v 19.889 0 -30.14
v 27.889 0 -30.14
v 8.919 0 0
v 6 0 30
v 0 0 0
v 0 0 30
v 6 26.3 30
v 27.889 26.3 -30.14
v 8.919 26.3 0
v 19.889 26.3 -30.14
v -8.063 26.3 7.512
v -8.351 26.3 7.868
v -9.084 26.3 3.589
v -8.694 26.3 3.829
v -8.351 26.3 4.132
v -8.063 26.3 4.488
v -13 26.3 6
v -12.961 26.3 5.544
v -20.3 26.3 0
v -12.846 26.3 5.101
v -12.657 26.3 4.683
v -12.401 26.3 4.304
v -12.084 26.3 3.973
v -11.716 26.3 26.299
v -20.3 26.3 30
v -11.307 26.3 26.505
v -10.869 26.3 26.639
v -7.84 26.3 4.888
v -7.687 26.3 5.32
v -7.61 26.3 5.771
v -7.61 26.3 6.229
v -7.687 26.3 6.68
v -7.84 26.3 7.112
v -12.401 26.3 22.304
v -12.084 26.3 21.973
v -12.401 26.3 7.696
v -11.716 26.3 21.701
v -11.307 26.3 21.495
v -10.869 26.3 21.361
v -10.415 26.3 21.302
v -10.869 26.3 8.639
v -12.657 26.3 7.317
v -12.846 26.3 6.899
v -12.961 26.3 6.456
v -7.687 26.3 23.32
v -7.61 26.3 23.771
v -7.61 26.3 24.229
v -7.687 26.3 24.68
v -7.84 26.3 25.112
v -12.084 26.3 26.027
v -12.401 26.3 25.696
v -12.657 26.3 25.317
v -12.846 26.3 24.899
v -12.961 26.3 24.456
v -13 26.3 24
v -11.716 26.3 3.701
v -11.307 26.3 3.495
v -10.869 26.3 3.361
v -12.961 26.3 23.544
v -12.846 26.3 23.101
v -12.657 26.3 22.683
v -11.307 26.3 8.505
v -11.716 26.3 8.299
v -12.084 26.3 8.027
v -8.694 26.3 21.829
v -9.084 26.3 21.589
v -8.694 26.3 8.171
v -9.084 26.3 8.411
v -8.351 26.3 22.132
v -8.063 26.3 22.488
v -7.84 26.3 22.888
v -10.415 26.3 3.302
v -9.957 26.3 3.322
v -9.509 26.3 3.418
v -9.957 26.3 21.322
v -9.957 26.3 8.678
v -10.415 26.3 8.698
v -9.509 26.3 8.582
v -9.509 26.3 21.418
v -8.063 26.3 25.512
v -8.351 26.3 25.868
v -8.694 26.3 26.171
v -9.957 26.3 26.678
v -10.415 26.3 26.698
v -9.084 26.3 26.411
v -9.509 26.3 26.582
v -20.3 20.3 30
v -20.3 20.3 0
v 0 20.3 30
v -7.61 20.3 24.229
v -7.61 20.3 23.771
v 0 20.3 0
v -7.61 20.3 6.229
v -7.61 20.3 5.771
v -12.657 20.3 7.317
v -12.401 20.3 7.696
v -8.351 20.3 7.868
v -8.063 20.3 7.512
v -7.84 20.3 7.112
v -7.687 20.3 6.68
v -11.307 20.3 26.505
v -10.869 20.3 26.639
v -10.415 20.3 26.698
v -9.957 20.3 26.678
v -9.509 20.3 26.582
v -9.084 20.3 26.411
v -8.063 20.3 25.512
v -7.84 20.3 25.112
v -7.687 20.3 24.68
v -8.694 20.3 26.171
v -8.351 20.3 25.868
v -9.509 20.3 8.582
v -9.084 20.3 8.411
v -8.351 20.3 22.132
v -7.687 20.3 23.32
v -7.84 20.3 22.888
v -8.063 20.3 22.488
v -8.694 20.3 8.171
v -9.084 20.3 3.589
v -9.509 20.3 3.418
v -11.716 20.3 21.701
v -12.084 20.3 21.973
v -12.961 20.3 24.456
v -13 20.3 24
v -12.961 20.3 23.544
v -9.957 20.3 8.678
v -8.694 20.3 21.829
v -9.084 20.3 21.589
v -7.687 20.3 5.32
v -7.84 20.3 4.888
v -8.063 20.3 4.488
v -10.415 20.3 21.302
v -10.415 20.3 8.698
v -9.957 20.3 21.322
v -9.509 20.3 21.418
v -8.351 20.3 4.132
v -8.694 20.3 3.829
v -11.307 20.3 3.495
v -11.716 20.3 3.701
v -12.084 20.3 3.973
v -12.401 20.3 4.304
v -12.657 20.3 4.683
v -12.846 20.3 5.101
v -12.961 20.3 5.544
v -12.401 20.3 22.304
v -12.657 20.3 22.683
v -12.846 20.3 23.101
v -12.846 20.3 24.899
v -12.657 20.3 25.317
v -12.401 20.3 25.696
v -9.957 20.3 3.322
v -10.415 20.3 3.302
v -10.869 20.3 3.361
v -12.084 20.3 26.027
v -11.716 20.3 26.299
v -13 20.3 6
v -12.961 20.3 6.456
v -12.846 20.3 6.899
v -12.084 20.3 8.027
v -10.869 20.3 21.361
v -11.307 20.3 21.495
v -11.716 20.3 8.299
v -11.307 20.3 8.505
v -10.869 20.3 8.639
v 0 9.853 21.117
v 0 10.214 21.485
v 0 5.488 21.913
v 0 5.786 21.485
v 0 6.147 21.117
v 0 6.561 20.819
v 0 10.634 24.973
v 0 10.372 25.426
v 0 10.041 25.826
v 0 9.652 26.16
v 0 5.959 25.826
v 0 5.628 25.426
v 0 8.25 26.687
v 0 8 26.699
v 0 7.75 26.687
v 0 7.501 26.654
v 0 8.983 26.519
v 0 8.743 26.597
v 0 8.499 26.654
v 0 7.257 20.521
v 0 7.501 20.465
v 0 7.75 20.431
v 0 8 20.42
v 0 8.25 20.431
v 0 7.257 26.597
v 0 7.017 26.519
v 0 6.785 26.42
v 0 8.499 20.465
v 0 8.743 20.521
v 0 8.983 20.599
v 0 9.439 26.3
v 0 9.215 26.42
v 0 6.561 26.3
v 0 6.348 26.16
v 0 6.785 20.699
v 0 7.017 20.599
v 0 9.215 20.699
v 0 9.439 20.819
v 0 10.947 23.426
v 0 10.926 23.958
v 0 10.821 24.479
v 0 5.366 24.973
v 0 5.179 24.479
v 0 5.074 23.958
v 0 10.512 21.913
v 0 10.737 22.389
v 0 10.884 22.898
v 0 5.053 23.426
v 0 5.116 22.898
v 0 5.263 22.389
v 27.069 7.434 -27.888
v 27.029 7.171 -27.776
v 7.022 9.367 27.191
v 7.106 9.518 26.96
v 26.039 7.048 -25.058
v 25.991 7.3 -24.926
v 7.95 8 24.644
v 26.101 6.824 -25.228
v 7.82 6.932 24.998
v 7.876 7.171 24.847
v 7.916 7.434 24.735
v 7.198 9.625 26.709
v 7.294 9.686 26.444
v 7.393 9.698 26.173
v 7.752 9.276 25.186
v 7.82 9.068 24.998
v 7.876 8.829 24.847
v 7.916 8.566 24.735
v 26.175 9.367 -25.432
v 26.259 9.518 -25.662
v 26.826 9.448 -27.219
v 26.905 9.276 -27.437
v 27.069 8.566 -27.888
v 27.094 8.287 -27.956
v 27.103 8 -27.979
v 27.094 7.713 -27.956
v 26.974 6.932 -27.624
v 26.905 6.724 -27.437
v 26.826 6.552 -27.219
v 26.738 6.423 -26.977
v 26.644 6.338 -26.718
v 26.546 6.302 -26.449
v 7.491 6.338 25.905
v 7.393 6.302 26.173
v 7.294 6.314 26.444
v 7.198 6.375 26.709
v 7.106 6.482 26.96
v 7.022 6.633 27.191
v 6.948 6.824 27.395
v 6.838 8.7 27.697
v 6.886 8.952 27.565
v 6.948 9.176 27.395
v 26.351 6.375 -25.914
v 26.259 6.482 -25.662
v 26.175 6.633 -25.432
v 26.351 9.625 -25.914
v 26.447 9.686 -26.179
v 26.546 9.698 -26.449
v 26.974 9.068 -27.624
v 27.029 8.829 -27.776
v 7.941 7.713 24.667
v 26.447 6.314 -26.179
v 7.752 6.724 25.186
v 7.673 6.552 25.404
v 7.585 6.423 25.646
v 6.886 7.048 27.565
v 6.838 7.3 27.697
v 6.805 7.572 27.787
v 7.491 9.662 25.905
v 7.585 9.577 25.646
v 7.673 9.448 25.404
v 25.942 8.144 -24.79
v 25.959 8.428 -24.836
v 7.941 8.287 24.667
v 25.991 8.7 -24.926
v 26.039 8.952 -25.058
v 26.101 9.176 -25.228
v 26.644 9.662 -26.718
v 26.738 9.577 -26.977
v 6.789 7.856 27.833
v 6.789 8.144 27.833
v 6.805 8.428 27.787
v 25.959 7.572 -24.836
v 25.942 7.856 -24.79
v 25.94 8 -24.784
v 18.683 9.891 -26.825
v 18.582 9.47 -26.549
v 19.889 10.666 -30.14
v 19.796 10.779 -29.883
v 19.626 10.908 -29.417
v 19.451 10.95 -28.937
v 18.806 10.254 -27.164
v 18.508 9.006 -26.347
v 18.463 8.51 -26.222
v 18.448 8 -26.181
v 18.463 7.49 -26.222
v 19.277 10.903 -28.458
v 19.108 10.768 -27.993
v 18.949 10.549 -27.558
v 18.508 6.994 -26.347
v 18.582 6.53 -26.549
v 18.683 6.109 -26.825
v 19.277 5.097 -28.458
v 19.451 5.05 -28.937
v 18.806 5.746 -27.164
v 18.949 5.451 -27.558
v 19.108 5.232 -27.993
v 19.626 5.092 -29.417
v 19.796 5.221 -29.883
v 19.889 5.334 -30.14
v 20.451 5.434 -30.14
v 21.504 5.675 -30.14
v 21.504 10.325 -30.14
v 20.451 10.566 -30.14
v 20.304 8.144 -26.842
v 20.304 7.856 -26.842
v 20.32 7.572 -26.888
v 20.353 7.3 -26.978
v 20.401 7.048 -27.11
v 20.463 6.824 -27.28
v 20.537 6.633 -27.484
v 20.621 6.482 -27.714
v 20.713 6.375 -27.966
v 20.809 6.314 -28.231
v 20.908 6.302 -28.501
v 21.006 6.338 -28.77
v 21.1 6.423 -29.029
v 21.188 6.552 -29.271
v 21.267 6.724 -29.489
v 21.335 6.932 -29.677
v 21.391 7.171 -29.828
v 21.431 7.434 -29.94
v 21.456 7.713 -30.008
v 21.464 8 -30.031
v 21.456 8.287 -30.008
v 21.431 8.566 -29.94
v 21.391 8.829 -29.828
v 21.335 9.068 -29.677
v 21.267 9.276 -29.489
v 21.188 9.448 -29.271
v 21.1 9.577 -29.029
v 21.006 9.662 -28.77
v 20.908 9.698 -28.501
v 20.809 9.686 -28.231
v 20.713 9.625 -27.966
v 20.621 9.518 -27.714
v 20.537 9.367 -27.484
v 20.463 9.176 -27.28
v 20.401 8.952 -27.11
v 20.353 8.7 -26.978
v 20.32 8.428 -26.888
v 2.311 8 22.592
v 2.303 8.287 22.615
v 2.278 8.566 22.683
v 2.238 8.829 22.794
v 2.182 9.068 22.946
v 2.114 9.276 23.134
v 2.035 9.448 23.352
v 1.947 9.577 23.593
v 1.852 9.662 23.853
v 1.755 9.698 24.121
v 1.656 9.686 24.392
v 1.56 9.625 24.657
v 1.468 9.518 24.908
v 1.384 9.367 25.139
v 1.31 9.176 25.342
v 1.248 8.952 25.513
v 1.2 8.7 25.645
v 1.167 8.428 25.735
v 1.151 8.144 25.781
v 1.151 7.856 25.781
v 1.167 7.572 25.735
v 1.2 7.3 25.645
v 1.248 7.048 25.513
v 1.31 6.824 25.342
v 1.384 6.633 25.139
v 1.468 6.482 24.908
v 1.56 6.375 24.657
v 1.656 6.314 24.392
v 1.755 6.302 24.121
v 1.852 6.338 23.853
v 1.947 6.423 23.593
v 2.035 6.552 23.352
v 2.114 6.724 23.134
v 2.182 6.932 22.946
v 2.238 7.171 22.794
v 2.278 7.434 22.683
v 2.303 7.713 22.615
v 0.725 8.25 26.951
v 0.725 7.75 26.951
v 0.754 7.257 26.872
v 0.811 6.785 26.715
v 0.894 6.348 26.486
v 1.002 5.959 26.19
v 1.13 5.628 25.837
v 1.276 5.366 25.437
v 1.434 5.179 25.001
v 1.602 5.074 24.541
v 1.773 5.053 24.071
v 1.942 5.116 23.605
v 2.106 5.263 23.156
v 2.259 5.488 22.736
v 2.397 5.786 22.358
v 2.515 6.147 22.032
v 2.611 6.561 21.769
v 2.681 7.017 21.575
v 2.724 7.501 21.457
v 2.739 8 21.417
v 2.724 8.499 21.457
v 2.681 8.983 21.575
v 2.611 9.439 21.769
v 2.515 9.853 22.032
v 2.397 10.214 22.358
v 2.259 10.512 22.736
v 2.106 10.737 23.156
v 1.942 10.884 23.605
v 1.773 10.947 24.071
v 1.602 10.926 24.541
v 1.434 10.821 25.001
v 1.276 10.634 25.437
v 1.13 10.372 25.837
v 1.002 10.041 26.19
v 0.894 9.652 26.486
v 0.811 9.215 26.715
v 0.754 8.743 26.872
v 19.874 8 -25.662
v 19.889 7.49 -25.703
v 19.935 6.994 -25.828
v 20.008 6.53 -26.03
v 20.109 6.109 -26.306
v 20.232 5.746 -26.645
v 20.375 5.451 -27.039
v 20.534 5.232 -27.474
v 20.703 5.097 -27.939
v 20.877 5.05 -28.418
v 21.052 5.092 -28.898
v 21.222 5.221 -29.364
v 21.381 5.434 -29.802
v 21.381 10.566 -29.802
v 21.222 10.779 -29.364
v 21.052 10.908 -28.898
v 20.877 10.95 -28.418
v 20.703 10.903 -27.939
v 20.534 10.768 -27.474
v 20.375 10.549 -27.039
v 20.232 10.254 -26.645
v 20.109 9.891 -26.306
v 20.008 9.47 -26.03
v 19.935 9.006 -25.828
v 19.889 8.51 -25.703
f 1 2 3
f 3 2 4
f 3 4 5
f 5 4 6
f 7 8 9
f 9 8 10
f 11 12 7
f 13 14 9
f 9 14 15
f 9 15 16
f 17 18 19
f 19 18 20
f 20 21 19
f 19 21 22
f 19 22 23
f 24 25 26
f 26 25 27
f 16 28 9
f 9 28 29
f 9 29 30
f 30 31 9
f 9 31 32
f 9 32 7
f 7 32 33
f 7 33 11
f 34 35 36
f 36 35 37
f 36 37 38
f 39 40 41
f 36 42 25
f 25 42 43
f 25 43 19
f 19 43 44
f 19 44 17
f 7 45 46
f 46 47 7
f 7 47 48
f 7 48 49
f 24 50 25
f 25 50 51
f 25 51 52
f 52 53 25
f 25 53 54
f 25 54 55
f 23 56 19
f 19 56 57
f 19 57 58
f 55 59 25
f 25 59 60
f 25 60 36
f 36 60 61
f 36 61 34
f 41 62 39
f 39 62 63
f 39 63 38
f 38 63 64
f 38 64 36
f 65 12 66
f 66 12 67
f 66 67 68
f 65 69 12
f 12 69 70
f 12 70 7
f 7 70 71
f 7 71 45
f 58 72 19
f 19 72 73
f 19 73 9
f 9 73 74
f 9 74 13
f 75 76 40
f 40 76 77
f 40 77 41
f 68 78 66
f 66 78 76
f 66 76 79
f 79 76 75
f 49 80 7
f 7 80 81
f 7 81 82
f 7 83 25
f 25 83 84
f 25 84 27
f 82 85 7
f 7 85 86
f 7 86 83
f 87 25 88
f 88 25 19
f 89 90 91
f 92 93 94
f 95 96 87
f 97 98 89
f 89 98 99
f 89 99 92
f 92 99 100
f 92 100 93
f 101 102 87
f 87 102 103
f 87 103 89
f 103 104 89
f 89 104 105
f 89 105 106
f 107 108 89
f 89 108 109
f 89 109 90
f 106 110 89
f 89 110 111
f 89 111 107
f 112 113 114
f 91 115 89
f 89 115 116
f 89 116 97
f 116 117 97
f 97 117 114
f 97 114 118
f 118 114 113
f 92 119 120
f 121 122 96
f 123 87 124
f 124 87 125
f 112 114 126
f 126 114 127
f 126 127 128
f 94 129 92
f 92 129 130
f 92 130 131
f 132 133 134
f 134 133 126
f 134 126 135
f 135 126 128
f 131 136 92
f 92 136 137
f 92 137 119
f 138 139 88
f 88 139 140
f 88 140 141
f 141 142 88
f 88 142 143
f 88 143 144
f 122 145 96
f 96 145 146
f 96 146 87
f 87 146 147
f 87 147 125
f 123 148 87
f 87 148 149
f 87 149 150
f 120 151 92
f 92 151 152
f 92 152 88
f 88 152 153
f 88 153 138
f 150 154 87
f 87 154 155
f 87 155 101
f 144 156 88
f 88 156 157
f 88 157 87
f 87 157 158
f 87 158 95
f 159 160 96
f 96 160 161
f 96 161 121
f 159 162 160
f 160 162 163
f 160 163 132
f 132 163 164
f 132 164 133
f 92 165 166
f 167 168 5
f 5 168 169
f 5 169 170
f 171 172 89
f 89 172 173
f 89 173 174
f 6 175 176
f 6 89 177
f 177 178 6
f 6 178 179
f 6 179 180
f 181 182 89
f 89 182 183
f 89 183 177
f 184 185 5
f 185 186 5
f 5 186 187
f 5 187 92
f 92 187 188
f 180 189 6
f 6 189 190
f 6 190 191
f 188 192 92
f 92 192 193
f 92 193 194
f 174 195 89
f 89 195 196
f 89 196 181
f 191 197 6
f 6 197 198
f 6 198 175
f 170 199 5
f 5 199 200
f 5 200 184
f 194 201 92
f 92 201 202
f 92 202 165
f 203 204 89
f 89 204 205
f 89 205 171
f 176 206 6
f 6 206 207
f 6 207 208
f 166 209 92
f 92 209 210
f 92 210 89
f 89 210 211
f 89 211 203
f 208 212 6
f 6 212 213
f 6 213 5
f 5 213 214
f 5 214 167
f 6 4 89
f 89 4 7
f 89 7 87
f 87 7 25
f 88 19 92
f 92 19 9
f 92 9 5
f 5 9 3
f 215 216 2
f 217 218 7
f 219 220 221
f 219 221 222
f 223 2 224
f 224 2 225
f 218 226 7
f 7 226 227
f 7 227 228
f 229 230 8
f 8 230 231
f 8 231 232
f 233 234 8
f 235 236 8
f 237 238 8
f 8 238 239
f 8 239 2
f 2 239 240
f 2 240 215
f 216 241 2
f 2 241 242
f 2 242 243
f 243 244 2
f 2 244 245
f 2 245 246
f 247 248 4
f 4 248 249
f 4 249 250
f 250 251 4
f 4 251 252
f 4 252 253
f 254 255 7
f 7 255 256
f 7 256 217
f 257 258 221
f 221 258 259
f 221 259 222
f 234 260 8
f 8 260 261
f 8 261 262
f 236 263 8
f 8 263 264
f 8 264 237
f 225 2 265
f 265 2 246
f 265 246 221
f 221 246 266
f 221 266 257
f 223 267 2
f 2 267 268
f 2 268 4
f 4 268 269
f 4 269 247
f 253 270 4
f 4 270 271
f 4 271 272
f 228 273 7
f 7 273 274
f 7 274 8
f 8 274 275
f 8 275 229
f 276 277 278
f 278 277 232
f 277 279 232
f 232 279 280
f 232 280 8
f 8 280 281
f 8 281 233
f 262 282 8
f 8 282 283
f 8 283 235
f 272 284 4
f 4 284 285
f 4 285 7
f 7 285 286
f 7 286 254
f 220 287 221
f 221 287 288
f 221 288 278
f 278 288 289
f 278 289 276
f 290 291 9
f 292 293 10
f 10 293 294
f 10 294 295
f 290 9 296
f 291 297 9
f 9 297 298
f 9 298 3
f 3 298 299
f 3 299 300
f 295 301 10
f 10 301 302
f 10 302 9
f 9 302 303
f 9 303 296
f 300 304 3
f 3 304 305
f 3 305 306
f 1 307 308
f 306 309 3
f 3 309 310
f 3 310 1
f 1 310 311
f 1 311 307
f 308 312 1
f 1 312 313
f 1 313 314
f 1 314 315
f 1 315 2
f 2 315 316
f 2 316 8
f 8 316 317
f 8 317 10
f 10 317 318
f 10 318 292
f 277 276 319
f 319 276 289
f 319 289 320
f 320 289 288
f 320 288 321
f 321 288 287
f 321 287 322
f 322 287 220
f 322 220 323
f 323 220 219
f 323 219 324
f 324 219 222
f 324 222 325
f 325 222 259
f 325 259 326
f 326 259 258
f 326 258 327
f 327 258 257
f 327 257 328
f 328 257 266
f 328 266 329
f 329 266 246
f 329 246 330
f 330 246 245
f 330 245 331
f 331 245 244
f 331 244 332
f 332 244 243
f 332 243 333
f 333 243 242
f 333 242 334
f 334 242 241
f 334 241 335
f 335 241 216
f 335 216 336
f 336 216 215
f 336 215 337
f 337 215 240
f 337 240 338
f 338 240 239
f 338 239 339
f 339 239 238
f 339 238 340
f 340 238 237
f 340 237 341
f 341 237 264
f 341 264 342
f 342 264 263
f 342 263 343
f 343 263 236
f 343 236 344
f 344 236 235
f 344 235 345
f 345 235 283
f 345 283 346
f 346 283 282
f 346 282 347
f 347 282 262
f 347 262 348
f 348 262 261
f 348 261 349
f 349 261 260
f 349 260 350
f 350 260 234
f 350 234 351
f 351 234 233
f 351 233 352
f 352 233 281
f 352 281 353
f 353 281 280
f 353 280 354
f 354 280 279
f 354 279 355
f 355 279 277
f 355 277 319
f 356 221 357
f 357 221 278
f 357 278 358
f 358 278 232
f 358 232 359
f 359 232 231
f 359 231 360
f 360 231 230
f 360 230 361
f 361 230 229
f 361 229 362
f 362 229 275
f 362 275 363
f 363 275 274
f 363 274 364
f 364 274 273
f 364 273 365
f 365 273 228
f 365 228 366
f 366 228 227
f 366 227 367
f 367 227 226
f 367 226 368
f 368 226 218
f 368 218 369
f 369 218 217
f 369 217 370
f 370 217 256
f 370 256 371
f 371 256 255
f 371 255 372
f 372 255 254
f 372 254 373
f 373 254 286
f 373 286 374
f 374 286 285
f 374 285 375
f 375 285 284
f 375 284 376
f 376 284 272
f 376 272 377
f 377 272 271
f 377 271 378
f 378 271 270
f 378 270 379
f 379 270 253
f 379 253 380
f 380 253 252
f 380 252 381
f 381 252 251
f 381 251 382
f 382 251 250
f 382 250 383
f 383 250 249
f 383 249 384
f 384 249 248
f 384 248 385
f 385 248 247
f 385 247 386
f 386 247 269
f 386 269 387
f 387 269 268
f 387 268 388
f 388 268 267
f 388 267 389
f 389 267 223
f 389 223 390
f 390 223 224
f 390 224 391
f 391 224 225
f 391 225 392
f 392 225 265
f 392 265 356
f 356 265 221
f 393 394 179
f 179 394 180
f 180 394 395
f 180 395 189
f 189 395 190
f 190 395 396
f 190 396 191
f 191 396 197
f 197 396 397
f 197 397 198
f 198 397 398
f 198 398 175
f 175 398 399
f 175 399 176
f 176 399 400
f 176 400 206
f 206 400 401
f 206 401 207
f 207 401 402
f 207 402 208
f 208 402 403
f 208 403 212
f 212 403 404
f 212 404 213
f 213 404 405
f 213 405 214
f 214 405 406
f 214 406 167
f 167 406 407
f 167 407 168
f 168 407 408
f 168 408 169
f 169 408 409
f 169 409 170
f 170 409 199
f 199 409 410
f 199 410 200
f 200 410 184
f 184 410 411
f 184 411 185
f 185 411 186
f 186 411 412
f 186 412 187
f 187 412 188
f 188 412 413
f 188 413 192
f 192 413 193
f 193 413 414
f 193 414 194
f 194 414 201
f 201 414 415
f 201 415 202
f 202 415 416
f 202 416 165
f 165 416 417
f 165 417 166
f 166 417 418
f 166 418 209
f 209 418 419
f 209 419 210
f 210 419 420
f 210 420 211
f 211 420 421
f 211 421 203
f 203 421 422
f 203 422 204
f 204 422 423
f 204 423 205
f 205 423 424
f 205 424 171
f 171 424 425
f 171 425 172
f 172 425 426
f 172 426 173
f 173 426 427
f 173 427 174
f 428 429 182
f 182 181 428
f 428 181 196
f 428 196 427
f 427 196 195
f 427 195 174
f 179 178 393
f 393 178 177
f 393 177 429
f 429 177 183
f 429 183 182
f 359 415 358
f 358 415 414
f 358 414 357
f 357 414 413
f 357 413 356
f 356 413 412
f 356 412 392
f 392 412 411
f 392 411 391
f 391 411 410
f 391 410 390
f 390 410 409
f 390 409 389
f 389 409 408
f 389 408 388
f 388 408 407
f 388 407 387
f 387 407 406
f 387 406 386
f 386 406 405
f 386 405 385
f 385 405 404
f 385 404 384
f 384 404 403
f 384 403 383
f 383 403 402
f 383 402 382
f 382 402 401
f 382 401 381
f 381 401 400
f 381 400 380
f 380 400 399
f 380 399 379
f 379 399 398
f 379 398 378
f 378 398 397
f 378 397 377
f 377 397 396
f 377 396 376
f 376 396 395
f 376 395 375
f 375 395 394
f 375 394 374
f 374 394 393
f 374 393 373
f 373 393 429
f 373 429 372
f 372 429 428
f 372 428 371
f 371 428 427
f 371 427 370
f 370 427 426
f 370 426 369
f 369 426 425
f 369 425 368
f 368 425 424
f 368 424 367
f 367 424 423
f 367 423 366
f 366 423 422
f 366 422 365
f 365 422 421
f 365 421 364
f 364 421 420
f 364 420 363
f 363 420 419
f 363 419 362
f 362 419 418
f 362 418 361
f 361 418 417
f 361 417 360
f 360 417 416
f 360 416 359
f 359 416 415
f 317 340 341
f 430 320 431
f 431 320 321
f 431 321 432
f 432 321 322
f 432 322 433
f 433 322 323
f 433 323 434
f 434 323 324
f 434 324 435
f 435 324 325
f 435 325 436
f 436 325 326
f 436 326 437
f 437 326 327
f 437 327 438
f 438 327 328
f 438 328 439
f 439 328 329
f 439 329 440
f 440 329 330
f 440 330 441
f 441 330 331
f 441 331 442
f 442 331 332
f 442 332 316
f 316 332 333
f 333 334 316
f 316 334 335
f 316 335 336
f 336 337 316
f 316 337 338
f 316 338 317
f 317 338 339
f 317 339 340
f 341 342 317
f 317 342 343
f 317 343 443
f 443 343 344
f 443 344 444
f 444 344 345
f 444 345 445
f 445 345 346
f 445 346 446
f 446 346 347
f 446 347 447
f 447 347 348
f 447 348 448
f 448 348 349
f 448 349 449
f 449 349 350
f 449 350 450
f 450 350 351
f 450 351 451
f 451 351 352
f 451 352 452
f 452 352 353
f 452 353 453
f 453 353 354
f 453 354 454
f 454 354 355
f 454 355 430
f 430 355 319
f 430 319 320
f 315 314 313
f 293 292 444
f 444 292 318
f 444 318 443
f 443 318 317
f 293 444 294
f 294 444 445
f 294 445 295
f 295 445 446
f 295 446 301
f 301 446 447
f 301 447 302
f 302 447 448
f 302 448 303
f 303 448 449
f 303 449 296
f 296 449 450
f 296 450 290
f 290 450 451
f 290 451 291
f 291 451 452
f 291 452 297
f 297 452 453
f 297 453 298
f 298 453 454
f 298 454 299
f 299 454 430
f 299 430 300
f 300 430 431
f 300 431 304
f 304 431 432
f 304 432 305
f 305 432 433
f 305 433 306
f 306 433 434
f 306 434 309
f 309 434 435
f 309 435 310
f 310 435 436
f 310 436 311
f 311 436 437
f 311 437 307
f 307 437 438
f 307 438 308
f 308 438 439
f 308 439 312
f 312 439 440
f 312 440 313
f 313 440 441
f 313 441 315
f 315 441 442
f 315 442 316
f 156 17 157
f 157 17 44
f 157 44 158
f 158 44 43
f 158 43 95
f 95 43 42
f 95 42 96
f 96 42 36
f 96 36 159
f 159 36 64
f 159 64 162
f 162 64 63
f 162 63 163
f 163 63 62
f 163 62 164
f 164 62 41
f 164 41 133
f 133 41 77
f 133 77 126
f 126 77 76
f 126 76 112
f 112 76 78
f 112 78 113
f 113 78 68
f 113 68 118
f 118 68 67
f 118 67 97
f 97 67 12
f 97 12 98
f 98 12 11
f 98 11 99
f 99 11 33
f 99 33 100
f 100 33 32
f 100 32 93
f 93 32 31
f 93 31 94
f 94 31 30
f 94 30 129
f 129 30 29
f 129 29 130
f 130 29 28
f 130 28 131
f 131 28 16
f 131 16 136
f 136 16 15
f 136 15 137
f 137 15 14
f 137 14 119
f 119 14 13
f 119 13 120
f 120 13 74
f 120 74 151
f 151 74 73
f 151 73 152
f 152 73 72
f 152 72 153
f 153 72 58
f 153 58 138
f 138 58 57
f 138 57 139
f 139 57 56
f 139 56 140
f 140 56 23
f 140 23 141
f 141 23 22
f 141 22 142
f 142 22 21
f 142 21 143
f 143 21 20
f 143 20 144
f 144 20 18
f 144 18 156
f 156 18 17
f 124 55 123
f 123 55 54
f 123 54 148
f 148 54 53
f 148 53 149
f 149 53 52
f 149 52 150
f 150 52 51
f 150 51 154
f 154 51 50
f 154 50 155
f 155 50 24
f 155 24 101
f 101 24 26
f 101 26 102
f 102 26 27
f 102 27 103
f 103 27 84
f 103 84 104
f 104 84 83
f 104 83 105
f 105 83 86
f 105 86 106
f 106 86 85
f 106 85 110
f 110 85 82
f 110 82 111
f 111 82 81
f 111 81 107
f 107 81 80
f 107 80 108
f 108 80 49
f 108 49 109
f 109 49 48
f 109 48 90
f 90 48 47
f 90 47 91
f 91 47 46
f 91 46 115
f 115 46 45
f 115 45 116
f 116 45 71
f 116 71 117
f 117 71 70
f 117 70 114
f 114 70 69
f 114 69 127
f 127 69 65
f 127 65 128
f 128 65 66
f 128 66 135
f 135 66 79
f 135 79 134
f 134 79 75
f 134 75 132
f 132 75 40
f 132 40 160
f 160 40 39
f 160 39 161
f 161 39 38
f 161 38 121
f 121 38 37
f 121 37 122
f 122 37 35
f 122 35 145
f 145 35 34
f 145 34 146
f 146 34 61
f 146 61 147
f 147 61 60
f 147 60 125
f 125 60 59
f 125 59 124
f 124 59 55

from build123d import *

# Parameters (mm, degrees)
BOSS_EXTRUDE1_DEPTH = 30
BOSS_EXTRUDE2_DEPTH = 26.3
BOSS_EXTRUDE3_DEPTH = 26.3
CUT_EXTRUDE1_REACH  = 58.563
SKETCH4_R           = 1.7
CUT_EXTRUDE2_START  = -6
SKETCH5_R           = 2.95
CUT_EXTRUDE2_DEPTH  = 21
SKETCH7_R           = 2.7
CUT_EXTRUDE3_DEPTH  = 21


with BuildPart() as part:
    # Sketch1 → Boss-Extrude1 (new body)
    with BuildSketch(Plane.XY):
        Polygon((0, 0), (0, 20.3), (-20.3, 20.3), (-20.3, 26.3), (6, 26.3), (6, 0), align=None)
    extrude(amount=BOSS_EXTRUDE1_DEPTH)

    # Sketch2 → Boss-Extrude2 (add)
    with BuildSketch(Plane.XZ):
        Polygon((6, 0), (16.919107028, 0), (6, 30), align=None)
    extrude(amount=-BOSS_EXTRUDE2_DEPTH)

    # Sketch3 → Boss-Extrude3 (add)
    with BuildSketch(Plane(origin=(0, 26.3, 0), x_dir=(1, 0, 0), z_dir=(0, 1, 0))):
        Polygon((16.919107028, 0), (27.889289173, 30.14032773), (19.889289173, 30.14032773), (8.919107028, 0), align=None)
    extrude(amount=-BOSS_EXTRUDE3_DEPTH)

    # Cut-Extrude1: up to this plane
    cut_extrude1_end = Plane(origin=(0, 0, 30), z_dir=(1, 0, 0))
    # Sketch4 → Cut-Extrude1 (cut, up to the surface)
    with BuildSketch(Plane(origin=(14.939947475, 0, 5.437696182), x_dir=(0.34202014332567265, 0, -0.9396926207859071), z_dir=(0.9396926207859071, 0, 0.34202014332567265)), mode=Mode.PRIVATE) as cut_extrude1_sk1:
        with Locations((-22.138657764, 8)):
            Circle(SKETCH4_R)
    cut_extrude1_tool1 = split(extrude(cut_extrude1_sk1.sketch, amount=-CUT_EXTRUDE1_REACH, mode=Mode.PRIVATE), bisect_by=cut_extrude1_end, keep=Keep.BOTH, mode=Mode.PRIVATE)
    add(cut_extrude1_tool1.solids().sort_by_distance((7.368081, 8, 26.24123))[0], mode=Mode.SUBTRACT)
    # Sketch4 → Cut-Extrude1 (cut, up to the surface)
    with BuildSketch(Plane(origin=(14.939947475, 0, 5.437696182), x_dir=(0.34202014332567265, 0, -0.9396926207859071), z_dir=(0.9396926207859071, 0, 0.34202014332567265)), mode=Mode.PRIVATE) as cut_extrude1_sk2:
        with Locations(Location((33.861342236, 8, 0), (0, 0, 41.975179766))):
            Circle(SKETCH4_R)
    cut_extrude1_tool2 = split(extrude(cut_extrude1_sk2.sketch, amount=-CUT_EXTRUDE1_REACH, mode=Mode.PRIVATE), bisect_by=cut_extrude1_end, keep=Keep.BOTH, mode=Mode.PRIVATE)
    add(cut_extrude1_tool2.solids().sort_by_distance((26.521209, 8, -26.381557))[0], mode=Mode.SUBTRACT)

    # Sketch5 → Cut-Extrude2 (cut)
    with BuildSketch(Plane(origin=(14.939947475, 0, 5.437696182), x_dir=(0.34202014332567265, 0, -0.9396926207859071), z_dir=(0.9396926207859071, 0, 0.34202014332567265)).offset(CUT_EXTRUDE2_START)):
        with Locations((-22.138657764, 8)):
            Circle(SKETCH5_R)
        with Locations((33.861342236, 8)):
            Circle(SKETCH5_R)
    extrude(amount=-CUT_EXTRUDE2_DEPTH, mode=Mode.SUBTRACT)

    # Sketch7 → Cut-Extrude3 (cut)
    with BuildSketch(Plane(origin=(0, 26.3, 0), x_dir=(1, 0, 0), z_dir=(0, 1, 0))):
        with Locations(Location((-10.3, -24, 0), (0, 0, 180))):
            Circle(SKETCH7_R)
        with Locations(Location((-10.3, -6, 0), (0, 0, 180))):
            Circle(SKETCH7_R)
    extrude(amount=-CUT_EXTRUDE3_DEPTH, mode=Mode.SUBTRACT)


solid = part.part
